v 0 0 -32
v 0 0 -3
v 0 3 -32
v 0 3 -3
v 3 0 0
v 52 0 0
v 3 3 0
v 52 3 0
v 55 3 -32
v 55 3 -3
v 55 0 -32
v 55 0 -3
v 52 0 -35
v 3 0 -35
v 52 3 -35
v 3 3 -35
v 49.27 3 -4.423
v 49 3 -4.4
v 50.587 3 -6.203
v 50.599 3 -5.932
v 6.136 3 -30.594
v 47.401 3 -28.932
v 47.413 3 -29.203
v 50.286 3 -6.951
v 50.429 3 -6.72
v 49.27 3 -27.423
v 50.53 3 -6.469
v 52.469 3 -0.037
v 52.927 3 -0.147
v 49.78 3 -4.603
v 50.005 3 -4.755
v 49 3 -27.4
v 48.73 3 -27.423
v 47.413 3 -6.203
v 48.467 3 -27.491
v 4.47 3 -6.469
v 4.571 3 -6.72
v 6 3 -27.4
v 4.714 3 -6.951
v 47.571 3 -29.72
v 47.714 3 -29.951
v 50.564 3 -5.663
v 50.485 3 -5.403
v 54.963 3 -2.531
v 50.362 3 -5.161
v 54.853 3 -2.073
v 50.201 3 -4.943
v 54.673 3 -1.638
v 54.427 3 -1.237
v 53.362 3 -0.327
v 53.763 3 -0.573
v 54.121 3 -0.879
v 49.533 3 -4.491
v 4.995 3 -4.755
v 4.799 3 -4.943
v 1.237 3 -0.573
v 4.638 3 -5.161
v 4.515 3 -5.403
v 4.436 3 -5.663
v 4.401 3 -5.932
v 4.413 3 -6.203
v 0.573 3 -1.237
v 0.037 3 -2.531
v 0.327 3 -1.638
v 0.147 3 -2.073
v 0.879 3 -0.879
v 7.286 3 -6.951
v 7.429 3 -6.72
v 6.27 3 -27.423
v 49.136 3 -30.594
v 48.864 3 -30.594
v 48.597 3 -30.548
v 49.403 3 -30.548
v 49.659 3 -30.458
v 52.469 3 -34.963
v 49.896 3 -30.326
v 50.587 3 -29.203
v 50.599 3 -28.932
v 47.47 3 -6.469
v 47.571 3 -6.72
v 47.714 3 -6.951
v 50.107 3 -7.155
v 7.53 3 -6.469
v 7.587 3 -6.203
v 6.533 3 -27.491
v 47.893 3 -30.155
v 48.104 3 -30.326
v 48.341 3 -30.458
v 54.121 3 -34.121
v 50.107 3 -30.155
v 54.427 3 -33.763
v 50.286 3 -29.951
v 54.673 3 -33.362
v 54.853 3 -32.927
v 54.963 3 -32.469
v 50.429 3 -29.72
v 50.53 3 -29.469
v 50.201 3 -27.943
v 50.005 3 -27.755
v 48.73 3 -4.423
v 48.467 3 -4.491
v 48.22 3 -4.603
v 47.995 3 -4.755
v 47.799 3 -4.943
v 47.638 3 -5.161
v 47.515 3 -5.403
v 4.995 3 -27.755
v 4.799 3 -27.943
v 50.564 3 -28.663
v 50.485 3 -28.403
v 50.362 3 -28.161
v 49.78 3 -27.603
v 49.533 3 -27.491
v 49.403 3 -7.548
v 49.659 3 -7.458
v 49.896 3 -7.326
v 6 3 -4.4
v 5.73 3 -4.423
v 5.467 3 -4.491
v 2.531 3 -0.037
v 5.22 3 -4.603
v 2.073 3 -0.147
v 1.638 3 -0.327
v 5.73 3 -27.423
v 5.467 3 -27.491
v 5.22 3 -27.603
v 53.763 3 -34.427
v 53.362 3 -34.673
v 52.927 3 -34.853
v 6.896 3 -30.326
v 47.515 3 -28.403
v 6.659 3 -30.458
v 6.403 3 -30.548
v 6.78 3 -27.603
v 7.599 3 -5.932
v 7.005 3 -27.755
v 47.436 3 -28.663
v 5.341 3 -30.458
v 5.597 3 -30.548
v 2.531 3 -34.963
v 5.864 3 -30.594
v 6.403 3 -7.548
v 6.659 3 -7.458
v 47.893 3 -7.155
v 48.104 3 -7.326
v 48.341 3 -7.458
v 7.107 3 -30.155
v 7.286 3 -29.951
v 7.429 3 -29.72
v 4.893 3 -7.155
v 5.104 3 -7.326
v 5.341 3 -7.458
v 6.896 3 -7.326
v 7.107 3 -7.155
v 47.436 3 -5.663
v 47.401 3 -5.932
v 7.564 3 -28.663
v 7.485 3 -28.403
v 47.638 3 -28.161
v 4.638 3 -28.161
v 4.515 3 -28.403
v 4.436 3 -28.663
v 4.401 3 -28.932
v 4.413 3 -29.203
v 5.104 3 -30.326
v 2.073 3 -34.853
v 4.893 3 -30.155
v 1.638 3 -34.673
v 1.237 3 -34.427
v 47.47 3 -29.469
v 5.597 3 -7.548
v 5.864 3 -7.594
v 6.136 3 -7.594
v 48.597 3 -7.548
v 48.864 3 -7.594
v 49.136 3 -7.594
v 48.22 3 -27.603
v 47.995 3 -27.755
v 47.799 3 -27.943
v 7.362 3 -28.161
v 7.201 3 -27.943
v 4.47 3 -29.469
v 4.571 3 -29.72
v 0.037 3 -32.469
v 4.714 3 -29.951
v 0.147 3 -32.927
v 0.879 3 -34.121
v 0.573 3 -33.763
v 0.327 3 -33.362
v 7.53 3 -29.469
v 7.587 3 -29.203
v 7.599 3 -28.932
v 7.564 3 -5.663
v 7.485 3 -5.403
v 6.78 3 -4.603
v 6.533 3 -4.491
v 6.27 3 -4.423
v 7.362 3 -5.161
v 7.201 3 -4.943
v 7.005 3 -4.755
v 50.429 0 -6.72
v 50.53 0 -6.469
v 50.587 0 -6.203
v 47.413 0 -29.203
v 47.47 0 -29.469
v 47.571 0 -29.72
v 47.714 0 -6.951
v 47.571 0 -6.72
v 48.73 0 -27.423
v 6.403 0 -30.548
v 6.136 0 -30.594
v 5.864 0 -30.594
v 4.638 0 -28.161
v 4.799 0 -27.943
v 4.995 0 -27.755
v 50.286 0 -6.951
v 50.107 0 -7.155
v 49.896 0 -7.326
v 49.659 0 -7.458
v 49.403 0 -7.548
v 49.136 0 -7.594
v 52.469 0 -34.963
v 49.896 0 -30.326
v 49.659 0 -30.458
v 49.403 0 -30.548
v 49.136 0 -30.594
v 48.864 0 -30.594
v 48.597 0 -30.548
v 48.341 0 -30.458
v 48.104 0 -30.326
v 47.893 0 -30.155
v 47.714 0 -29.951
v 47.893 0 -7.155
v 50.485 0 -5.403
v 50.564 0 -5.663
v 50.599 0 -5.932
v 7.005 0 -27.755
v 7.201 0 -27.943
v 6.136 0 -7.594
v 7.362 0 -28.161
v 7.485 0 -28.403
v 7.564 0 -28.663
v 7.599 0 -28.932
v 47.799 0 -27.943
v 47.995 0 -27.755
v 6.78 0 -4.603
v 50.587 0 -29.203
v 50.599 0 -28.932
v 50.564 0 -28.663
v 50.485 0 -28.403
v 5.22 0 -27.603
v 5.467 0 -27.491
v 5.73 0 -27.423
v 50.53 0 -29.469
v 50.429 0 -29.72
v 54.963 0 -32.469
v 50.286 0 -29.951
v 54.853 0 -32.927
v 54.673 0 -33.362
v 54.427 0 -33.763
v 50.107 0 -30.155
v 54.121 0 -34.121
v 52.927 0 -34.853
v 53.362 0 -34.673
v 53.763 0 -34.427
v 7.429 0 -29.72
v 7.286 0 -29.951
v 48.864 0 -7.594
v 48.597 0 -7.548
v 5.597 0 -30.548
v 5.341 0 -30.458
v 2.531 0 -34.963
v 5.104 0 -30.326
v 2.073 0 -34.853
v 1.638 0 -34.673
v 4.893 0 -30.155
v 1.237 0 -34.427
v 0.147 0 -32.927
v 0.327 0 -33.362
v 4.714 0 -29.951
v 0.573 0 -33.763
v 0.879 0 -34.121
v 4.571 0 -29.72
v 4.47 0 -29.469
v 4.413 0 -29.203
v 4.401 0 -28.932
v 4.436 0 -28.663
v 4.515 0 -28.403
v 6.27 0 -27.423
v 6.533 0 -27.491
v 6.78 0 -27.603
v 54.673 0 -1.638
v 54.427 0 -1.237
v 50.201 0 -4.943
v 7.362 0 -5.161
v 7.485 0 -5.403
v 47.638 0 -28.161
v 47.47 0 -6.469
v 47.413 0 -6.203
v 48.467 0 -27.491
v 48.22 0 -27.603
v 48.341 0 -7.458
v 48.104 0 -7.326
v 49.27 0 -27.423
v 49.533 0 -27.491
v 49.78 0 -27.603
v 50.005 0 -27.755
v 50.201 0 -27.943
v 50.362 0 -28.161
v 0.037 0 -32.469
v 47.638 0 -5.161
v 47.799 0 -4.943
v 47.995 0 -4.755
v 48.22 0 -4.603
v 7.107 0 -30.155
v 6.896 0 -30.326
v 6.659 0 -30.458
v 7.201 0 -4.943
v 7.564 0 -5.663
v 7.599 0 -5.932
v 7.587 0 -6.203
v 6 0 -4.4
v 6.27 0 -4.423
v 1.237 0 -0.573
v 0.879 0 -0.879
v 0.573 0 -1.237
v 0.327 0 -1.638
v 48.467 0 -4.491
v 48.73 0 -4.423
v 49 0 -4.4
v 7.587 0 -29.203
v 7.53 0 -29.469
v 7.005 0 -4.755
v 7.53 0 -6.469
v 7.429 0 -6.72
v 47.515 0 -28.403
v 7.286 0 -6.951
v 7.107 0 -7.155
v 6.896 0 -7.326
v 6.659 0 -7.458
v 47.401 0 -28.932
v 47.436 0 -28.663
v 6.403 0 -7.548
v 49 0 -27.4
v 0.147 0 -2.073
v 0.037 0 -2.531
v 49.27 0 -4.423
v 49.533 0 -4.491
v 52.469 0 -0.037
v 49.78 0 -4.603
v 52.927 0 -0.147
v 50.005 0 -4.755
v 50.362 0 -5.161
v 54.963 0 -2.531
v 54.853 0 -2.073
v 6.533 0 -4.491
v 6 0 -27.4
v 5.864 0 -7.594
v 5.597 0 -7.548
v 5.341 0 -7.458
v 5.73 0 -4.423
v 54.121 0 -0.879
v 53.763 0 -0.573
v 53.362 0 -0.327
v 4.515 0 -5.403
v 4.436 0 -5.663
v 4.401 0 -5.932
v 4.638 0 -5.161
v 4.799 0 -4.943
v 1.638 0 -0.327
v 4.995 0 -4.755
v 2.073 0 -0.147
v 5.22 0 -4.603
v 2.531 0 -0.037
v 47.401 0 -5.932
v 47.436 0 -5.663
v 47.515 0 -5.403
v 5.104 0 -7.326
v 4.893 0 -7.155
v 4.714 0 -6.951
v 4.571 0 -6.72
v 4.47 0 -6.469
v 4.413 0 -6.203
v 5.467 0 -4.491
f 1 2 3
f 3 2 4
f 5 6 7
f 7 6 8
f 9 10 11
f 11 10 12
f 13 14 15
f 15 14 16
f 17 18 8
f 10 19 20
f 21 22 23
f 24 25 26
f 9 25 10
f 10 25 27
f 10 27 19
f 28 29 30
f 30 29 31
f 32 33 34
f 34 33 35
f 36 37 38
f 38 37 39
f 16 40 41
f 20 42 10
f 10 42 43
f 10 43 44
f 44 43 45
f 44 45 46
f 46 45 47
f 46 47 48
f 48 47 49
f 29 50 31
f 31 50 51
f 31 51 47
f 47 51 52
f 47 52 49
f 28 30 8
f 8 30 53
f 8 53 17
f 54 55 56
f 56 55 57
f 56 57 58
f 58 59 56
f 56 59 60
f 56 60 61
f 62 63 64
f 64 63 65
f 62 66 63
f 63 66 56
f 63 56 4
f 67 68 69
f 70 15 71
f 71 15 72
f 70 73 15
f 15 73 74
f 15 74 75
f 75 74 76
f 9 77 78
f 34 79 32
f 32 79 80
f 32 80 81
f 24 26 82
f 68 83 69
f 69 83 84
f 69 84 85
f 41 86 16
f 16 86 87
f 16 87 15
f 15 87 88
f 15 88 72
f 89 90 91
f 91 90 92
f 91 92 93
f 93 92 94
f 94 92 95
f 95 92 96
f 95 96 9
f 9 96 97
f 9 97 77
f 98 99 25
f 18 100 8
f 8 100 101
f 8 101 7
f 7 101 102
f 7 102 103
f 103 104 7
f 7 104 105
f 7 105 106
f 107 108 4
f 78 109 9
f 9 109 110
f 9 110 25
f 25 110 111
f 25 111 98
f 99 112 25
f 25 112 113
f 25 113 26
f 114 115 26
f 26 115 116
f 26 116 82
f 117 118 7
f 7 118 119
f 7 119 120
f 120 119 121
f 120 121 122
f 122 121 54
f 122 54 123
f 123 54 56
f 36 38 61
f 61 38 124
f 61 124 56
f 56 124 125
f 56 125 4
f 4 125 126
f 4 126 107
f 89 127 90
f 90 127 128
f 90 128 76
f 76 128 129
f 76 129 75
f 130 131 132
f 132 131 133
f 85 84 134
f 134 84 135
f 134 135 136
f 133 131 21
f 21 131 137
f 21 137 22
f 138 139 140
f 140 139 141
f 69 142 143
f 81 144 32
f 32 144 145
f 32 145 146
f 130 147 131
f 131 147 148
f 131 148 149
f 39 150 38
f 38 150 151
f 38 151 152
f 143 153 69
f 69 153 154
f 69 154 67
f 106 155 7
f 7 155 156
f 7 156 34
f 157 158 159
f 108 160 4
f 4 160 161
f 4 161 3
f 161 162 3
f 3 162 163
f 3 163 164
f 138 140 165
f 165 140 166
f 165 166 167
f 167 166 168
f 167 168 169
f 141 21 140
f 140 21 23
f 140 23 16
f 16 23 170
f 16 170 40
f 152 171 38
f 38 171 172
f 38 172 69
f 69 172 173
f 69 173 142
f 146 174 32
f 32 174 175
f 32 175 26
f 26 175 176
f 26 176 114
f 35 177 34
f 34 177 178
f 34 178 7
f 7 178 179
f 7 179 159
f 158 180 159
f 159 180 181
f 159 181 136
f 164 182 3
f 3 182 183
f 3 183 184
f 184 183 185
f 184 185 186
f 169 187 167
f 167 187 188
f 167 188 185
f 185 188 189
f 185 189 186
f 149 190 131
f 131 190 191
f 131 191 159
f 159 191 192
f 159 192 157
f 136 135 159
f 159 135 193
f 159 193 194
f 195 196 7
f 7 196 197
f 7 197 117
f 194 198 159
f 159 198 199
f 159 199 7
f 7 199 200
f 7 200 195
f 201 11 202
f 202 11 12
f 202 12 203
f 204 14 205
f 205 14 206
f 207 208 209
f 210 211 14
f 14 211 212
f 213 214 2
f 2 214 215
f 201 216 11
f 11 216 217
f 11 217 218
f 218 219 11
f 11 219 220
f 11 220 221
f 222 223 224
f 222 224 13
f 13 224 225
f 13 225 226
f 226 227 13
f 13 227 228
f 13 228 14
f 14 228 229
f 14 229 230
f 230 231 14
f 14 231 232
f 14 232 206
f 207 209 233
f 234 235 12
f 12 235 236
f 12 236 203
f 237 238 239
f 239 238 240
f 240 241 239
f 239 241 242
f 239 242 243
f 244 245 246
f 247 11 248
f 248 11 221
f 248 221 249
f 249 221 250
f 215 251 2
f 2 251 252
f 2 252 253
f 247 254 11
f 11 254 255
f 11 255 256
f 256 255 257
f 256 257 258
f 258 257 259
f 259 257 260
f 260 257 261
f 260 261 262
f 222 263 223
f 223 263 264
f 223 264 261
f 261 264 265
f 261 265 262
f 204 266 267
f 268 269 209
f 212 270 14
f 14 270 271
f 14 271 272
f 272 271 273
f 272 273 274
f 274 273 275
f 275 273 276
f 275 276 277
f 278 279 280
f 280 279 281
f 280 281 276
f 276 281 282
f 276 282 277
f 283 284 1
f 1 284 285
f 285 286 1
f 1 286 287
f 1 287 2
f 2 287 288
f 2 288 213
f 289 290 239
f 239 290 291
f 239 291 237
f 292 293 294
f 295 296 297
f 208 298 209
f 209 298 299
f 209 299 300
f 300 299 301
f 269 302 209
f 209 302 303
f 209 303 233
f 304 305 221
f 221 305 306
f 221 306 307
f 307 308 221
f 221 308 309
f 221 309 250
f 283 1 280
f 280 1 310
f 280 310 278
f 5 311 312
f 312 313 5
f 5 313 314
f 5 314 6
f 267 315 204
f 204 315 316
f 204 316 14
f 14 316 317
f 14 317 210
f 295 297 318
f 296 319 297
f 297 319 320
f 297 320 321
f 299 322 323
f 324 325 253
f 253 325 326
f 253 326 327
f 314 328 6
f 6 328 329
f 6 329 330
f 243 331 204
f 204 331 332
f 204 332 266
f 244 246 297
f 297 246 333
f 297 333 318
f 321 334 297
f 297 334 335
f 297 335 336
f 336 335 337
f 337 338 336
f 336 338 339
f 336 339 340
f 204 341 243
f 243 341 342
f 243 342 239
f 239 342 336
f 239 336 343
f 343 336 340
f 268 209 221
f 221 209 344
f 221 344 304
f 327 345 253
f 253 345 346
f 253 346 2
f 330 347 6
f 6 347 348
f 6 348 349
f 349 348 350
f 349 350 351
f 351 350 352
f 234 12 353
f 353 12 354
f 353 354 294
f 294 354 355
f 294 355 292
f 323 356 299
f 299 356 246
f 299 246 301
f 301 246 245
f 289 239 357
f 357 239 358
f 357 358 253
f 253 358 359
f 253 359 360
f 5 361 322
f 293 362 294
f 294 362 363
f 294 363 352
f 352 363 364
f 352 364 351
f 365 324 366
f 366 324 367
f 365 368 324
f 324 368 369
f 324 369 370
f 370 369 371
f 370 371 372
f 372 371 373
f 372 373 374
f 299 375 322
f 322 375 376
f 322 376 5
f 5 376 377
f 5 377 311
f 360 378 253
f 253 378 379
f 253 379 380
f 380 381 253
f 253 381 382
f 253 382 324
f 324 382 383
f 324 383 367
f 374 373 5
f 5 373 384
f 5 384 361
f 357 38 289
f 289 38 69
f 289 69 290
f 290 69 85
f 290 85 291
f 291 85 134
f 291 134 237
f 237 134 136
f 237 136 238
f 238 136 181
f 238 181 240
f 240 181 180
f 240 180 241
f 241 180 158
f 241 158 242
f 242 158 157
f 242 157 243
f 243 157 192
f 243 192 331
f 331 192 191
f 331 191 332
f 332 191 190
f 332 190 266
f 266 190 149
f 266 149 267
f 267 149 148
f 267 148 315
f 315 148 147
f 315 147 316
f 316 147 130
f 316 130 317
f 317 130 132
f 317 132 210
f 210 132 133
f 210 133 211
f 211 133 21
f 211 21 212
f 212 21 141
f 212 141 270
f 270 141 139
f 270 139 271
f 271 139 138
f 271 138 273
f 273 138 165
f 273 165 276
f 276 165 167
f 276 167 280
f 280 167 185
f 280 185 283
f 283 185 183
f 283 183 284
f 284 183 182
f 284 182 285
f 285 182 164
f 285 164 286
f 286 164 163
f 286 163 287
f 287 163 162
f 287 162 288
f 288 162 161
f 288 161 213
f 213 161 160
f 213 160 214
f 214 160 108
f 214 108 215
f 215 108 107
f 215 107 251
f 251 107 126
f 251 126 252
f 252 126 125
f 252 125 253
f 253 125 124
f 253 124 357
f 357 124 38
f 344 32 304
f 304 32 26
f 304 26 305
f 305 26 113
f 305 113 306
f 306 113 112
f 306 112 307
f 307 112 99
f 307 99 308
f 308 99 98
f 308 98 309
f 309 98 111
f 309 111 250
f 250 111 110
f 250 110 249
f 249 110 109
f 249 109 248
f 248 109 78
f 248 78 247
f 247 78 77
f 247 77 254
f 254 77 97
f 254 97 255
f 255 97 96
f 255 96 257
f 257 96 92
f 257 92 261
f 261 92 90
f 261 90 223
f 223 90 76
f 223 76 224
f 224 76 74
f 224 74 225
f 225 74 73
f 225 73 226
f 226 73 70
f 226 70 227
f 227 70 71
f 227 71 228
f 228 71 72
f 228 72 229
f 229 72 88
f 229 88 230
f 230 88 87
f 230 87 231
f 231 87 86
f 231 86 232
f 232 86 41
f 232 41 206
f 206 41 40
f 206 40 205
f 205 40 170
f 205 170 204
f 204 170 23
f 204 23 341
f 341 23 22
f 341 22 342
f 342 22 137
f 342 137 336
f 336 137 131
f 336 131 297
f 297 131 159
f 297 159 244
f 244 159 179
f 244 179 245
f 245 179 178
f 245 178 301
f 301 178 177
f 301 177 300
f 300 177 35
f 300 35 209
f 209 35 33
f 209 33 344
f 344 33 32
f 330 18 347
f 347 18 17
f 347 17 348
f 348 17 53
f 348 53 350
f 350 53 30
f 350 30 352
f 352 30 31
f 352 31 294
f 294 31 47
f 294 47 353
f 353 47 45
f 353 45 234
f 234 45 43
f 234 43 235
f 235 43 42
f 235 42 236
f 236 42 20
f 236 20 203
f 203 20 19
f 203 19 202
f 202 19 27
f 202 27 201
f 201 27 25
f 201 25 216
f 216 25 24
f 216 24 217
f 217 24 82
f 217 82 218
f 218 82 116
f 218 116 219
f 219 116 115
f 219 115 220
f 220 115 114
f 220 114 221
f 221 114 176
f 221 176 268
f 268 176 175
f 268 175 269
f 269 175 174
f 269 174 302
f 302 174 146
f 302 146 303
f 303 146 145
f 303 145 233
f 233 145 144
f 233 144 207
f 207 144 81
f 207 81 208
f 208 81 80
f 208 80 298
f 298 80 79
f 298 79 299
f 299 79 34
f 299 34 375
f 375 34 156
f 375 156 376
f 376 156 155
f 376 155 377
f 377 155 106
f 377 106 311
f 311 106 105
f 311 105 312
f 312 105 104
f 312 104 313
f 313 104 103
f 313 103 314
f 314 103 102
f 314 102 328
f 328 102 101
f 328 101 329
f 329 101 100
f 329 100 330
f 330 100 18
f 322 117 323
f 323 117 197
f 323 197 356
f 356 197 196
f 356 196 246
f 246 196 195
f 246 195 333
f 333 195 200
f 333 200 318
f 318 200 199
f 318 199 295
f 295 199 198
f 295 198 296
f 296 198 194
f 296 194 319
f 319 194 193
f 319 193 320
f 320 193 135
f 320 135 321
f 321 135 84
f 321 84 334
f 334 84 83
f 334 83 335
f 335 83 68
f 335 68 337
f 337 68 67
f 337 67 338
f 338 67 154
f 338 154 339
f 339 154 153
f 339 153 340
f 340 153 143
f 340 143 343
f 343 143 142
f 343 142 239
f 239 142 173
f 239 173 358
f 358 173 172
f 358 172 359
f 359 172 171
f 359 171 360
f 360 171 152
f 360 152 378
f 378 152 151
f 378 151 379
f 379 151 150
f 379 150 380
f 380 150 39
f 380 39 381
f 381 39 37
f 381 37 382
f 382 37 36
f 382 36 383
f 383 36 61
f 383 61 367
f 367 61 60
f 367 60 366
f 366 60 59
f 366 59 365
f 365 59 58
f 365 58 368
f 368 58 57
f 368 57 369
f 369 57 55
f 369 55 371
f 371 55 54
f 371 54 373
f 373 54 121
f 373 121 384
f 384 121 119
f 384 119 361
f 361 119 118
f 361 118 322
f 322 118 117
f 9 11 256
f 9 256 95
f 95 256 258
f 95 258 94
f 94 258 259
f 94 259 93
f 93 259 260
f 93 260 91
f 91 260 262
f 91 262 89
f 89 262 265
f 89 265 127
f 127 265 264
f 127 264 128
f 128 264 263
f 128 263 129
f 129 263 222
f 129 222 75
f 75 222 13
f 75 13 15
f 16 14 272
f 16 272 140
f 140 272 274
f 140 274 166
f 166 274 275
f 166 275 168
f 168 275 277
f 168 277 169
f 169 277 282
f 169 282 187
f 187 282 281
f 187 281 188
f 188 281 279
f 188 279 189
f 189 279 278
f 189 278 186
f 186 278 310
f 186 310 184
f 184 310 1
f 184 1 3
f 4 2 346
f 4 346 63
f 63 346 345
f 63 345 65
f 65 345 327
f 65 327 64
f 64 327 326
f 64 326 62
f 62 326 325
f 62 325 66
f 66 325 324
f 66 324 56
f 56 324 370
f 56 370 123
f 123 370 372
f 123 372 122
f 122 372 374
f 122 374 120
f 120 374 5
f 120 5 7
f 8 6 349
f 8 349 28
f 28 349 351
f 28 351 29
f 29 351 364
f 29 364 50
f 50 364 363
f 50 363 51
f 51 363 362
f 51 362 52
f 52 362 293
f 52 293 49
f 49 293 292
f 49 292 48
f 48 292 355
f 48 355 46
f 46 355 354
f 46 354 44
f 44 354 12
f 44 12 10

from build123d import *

# Parameters (mm, degrees)
SKETCH_1_W          = 55
SKETCH_1_H          = 35
EXTRUDE_1_DEPTH     = 3
SKETCH_2_R          = 1.6
CUT_EXTRUDE_1_DEPTH = 3
FILLET_1_R          = 3


with BuildPart() as part:
    # 草图1 → 凸台-拉伸1 (new body)
    with BuildSketch(Plane(origin=(0, 0, 0), x_dir=(1, 0, 0), z_dir=(0, 1, 0))):
        with Locations((27.5, 17.5)):
            Rectangle(SKETCH_1_W, SKETCH_1_H)
    extrude(amount=EXTRUDE_1_DEPTH)

    # 草图2 → 切除-拉伸1 (cut)
    with BuildSketch(Plane(origin=(0, 3, 0), x_dir=(1, 0, 0), z_dir=(0, 1, 0))):
        with Locations(Location((6, 29, 0), (0, 0, 270))):
            Circle(SKETCH_2_R)
        with Locations(Location((49, 29, 0), (0, 0, 270))):
            Circle(SKETCH_2_R)
        with Locations(Location((49, 6, 0), (0, 0, 270))):
            Circle(SKETCH_2_R)
        with Locations(Location((6, 6, 0), (0, 0, 270))):
            Circle(SKETCH_2_R)
    extrude(amount=-CUT_EXTRUDE_1_DEPTH, mode=Mode.SUBTRACT)

    # 圆角1
    fillet_1_edges = [part.edges().sort_by_distance(p)[0] for p in [
        (0, 1.5, -35),
        (55, 1.5, -35),
        (55, 1.5, 0),
        (0, 1.5, 0),
    ]]
    fillet(fillet_1_edges, radius=FILLET_1_R)


solid = part.part
